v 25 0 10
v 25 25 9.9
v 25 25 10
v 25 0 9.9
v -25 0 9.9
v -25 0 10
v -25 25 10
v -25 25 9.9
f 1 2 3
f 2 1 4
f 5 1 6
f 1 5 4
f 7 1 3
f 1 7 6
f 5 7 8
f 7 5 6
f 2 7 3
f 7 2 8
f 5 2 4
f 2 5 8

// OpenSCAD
module hexagonal_prism(width, height, depth, angle) {
  linear_extrude(height = depth) {
    polygon(points = [
      [width / 2, 0],
      [width / 2, height],
      [0, height],
      [-width / 2, height],
      [-width / 2, 0],
      [0, 0]
    ]);
  }
}

// Example usage:
width = 50;
height = 25;
depth = 10;
angle = 360;

difference() {
  linear_extrude(height = depth) {
    polygon(points = [
      [width / 2, 0],
      [width / 2, height],
      [0, height],
      [-width / 2, height],
      [-width / 2, 0],
      [0, 0]
    ]);
  }
  
  translate([0, 0, -0.1]) {
    linear_extrude(height = depth) {
      polygon(points = [
        [width / 2, 0],
        [width / 2, height],
        [0, height],
        [-width / 2, height],
        [-width / 2, 0],
        [0, 0]
      ]);
    }
  }
}
